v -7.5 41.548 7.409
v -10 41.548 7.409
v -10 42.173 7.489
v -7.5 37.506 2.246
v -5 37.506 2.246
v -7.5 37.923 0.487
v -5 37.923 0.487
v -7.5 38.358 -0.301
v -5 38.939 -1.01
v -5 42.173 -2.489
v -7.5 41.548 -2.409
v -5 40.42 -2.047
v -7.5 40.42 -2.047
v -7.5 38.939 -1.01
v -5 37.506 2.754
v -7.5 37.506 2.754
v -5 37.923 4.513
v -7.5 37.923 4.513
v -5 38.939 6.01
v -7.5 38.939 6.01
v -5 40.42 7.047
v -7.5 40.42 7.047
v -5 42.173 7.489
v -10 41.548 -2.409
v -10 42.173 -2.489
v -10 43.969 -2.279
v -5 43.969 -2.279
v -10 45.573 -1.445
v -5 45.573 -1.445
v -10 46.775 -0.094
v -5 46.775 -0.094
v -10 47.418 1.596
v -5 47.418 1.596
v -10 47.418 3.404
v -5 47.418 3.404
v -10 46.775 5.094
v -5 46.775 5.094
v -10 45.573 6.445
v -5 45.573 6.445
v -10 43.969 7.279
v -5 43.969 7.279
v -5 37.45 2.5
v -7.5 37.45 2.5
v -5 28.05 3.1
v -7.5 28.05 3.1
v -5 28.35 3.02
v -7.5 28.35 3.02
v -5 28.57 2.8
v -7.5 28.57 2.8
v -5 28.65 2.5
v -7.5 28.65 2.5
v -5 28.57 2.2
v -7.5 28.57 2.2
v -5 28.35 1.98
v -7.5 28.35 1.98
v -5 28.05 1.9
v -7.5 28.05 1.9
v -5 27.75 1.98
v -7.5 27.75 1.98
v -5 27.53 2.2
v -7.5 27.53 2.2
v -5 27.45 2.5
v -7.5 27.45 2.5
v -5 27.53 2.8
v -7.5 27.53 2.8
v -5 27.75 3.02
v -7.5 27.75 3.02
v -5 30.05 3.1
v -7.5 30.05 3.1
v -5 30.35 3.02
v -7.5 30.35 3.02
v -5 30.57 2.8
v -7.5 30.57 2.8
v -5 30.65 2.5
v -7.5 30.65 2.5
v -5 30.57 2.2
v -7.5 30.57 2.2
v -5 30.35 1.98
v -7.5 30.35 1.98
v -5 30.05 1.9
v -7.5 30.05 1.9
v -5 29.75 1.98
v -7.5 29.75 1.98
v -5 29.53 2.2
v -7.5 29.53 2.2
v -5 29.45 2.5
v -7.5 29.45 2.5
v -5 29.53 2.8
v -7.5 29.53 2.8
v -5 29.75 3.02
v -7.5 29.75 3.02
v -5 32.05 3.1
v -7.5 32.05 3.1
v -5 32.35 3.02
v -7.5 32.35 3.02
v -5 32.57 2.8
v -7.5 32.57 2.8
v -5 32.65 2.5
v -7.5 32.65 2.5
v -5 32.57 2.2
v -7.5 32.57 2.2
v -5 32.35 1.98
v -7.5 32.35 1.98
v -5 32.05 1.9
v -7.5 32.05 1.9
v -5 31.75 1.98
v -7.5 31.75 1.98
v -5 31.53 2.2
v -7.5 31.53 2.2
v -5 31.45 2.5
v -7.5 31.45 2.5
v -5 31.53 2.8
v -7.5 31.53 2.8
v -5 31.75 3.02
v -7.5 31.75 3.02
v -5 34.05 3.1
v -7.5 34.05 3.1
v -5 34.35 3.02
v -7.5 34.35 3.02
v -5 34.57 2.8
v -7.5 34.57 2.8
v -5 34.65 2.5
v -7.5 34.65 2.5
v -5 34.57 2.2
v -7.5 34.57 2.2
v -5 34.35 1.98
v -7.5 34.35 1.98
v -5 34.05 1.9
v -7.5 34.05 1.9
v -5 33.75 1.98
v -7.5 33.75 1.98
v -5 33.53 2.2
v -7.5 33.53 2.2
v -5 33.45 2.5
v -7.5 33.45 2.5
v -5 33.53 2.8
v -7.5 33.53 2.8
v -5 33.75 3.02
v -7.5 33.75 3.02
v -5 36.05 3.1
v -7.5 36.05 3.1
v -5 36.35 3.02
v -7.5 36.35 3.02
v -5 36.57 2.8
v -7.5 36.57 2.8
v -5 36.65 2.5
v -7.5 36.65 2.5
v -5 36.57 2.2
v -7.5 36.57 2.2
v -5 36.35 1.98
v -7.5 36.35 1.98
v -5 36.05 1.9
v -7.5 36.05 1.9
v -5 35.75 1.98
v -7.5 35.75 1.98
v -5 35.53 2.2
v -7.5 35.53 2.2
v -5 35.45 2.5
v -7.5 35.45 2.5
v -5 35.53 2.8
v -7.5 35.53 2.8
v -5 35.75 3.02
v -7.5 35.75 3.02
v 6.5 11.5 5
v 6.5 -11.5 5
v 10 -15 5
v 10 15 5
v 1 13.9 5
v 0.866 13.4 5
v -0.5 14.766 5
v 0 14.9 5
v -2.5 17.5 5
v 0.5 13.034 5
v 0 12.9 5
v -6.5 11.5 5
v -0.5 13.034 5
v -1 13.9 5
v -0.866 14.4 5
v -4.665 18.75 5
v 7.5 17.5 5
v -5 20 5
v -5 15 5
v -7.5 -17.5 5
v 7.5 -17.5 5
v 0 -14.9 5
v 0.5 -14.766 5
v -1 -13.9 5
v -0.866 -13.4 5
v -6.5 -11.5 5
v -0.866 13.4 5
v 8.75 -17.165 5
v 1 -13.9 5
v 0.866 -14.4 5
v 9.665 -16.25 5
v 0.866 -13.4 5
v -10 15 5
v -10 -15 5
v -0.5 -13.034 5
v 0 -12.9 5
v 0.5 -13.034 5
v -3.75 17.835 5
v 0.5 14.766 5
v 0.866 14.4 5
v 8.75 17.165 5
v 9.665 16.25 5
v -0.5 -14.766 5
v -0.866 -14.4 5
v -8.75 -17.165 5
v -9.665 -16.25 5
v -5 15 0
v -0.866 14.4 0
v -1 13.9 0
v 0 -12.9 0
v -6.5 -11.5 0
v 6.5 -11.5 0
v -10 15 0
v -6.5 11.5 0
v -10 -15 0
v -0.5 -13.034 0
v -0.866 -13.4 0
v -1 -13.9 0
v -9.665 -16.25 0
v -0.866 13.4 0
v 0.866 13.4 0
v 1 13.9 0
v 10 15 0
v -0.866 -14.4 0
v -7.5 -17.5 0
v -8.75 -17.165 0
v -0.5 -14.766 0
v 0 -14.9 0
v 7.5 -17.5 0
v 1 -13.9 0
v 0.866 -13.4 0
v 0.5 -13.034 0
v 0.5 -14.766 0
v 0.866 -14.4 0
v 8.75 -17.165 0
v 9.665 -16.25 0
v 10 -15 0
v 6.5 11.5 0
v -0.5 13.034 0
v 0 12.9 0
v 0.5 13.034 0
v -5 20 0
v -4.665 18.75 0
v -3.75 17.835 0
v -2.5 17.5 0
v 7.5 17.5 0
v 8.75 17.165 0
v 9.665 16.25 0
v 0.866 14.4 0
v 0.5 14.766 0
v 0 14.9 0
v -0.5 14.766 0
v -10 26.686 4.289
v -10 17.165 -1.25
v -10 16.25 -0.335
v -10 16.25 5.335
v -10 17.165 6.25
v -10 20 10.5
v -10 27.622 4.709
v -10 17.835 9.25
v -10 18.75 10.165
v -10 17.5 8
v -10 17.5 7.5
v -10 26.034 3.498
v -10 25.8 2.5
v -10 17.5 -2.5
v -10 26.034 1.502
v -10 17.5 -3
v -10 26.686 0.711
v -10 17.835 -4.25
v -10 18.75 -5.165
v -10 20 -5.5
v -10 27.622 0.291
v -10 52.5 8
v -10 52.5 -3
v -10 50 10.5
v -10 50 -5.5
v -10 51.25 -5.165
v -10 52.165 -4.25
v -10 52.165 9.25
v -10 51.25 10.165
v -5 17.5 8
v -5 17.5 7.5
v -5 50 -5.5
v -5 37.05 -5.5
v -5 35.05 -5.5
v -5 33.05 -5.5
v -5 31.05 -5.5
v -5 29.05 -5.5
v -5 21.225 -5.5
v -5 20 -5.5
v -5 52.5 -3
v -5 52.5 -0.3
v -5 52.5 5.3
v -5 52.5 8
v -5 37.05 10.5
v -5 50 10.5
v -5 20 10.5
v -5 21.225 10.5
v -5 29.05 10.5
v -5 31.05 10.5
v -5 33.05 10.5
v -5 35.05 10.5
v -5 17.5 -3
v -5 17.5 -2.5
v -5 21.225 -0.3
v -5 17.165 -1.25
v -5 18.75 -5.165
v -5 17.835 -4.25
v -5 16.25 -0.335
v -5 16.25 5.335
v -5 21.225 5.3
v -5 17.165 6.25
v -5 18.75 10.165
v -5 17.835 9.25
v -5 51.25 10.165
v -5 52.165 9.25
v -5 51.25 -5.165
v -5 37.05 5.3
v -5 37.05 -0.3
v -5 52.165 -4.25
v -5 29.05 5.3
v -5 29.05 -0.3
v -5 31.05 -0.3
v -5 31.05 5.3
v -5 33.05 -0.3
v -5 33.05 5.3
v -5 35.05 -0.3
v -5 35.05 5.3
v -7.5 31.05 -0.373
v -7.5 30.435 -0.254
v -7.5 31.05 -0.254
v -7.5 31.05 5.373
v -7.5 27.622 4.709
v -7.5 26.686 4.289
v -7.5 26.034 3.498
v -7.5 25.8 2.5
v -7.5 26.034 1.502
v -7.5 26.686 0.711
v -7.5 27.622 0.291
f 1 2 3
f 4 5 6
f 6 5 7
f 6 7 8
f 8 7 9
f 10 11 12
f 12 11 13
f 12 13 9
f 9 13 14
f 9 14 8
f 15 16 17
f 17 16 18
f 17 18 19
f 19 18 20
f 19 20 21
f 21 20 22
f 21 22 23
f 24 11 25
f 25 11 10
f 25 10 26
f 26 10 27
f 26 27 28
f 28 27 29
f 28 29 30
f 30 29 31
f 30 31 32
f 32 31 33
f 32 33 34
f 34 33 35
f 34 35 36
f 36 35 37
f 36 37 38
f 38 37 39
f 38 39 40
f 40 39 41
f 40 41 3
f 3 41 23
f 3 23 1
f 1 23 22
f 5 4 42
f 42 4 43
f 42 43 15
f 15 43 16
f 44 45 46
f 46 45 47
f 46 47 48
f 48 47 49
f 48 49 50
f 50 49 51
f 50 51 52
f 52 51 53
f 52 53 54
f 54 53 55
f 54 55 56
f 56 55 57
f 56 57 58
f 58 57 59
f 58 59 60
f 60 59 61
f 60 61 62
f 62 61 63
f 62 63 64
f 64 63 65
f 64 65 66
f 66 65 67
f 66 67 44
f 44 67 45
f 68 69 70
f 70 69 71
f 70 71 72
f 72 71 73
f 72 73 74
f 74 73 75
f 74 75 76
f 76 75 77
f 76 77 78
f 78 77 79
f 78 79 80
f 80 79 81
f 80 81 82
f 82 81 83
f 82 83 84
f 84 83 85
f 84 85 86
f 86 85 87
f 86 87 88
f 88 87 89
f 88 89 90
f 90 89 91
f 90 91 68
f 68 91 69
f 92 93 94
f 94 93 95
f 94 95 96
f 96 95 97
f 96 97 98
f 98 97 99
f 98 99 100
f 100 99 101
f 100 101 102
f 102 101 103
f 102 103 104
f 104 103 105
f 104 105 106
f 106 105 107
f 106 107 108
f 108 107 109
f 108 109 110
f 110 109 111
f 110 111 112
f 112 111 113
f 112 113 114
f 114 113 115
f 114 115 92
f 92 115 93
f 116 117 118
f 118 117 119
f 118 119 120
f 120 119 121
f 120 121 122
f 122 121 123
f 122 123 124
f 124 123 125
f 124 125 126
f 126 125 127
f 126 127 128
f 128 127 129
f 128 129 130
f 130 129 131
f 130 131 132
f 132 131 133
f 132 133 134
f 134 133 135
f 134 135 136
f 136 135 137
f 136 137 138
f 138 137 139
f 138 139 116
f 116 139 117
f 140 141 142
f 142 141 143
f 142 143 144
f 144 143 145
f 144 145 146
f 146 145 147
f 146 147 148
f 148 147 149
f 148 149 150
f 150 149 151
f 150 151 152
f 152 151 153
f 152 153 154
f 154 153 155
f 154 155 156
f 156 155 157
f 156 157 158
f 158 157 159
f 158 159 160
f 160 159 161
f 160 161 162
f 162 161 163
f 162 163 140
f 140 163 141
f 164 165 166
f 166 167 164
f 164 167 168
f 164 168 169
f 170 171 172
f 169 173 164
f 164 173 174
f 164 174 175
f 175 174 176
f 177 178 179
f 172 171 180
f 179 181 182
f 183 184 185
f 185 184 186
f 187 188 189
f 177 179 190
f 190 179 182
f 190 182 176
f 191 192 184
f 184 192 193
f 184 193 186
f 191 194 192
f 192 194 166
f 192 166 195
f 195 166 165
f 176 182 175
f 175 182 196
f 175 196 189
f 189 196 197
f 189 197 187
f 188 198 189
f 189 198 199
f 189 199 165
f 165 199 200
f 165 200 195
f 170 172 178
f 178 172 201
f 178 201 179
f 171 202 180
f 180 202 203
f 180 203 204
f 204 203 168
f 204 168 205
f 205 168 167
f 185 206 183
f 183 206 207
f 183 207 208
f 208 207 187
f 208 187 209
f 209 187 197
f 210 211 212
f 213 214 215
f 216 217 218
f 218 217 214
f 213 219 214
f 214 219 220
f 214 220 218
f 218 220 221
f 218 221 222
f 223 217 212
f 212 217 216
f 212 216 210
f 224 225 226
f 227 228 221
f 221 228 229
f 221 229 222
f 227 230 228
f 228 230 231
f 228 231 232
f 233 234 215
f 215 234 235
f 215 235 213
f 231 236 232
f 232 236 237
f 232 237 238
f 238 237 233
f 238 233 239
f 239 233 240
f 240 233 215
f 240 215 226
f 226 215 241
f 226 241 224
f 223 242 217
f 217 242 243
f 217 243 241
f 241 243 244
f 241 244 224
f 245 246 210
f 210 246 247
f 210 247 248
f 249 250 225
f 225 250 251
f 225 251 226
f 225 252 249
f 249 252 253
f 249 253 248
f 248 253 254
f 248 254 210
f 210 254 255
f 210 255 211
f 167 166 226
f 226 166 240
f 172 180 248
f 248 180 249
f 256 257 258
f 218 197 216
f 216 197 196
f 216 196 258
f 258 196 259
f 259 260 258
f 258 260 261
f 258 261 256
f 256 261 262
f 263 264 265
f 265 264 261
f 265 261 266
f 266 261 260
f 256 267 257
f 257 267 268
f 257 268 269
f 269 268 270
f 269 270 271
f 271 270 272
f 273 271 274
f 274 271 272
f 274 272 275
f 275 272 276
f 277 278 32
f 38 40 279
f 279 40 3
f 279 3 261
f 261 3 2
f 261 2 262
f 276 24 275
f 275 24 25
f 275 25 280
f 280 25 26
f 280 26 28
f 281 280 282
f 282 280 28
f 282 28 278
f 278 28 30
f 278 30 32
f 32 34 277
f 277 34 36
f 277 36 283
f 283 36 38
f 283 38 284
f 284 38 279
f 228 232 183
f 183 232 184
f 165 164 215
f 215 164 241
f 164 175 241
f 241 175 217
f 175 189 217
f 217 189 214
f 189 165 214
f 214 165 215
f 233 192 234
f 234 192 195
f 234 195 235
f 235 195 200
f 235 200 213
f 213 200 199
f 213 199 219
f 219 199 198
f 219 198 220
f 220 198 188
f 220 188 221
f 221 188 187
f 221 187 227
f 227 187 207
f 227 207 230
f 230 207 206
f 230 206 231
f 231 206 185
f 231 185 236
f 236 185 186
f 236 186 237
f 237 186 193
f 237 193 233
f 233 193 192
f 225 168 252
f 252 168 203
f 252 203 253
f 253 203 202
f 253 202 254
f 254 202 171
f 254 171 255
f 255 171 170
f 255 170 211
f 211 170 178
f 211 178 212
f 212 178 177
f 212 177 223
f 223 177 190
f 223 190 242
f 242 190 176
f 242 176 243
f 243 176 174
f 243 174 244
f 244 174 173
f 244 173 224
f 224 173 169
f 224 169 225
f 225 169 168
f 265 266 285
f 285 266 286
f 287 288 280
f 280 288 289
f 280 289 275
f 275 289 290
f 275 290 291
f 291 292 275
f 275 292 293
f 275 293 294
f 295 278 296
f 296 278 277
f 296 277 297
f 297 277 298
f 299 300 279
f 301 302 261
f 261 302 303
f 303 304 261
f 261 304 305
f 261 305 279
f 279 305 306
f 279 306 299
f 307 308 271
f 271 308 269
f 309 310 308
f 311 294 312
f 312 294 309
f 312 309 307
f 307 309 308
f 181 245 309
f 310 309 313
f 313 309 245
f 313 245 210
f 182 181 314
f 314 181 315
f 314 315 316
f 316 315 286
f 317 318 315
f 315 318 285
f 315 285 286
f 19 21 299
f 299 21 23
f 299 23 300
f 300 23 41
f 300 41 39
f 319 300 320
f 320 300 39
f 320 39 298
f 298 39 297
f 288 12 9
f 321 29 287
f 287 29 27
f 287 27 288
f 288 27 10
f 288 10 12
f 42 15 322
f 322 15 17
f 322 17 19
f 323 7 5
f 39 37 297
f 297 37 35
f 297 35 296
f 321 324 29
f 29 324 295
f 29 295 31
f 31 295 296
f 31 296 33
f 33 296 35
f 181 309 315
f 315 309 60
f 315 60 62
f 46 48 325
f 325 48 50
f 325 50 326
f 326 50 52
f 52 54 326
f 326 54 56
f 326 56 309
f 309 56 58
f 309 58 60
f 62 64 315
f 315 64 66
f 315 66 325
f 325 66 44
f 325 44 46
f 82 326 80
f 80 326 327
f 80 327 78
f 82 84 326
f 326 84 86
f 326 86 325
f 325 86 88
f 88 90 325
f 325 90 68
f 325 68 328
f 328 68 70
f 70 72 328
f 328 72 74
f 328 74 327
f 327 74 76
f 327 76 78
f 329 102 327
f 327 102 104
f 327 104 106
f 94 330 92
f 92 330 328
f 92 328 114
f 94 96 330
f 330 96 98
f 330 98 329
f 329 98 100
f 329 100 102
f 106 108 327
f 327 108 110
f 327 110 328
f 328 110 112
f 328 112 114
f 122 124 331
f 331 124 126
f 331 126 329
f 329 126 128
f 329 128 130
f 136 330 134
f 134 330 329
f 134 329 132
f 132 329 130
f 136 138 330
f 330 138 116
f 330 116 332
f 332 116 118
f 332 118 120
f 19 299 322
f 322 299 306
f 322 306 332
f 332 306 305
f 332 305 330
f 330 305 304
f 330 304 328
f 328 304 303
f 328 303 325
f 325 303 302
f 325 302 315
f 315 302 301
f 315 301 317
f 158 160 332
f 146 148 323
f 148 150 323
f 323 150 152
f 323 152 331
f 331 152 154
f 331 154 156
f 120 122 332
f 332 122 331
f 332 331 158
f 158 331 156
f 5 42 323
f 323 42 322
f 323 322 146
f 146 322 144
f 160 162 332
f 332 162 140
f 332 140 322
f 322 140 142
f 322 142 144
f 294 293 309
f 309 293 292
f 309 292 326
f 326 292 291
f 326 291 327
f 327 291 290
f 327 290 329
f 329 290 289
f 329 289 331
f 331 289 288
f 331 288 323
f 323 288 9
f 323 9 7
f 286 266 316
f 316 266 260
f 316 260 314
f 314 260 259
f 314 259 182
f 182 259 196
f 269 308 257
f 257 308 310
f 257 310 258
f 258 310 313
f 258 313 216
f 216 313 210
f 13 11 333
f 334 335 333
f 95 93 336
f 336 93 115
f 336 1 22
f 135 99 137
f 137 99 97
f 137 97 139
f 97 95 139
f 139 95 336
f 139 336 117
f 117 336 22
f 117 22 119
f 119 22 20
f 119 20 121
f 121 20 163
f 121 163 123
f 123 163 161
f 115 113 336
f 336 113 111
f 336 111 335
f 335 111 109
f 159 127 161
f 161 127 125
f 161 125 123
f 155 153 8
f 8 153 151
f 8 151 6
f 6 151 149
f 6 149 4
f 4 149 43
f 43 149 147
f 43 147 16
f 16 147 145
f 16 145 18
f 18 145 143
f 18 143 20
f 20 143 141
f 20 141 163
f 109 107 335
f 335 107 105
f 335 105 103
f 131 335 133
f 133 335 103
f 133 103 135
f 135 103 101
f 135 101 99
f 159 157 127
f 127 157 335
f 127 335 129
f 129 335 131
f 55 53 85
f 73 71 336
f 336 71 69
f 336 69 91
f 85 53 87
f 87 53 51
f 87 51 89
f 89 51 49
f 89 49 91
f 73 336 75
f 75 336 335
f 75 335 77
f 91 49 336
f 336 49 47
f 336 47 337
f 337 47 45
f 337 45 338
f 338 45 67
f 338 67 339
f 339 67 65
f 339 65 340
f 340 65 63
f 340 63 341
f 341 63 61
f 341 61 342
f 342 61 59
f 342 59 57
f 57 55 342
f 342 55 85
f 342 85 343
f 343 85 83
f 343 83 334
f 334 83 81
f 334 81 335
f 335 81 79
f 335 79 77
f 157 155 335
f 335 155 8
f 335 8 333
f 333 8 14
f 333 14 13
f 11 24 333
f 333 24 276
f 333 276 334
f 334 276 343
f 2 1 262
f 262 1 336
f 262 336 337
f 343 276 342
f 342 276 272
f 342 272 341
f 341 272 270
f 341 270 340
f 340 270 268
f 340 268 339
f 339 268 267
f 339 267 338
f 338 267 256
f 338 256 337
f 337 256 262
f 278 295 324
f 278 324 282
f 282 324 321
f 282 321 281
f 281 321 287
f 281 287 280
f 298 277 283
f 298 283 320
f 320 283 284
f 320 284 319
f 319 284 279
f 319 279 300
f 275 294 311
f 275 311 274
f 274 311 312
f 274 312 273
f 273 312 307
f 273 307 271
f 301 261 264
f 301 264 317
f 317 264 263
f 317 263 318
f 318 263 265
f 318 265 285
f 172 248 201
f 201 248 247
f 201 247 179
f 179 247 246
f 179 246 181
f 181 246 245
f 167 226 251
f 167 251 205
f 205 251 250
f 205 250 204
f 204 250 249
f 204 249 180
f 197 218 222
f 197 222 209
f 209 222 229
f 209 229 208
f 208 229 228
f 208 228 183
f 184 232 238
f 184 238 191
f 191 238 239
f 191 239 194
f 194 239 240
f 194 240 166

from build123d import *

# Parameters (mm, degrees)
SKETCH1_W           = 20
SKETCH1_H           = 35
SKETCH1_W_2         = 13
SKETCH1_H_2         = 23
BOSS_EXTRUDE1_DEPTH = 5
SKETCH2_R           = 1
CUT_EXTRUDE1_DEPTH  = 5
BOSS_EXTRUDE2_DEPTH = 5
FILLET1_R           = 2.5
SKETCH5_R           = 5
CUT_EXTRUDE2_DEPTH  = 5
SKETCH6_R           = 0.6
CUT_EXTRUDE3_DEPTH  = 5
CUT_EXTRUDE4_START  = -2.5
SKETCH8_R           = 0.6
SKETCH8_R_2         = 2.25
CUT_EXTRUDE4_DEPTH  = 2.5
FILLET2_R           = 2.5


with BuildPart() as part:
    # Sketch1 → Boss-Extrude1 (new body)
    with BuildSketch(Plane.XY):
        Rectangle(SKETCH1_W, SKETCH1_H)
        Rectangle(SKETCH1_W_2, SKETCH1_H_2, mode=Mode.SUBTRACT)
    extrude(amount=BOSS_EXTRUDE1_DEPTH)

    # Sketch2 → Cut-Extrude1 (cut)
    with BuildSketch(Plane.XY.offset(5)):
        with Locations((0, 13.9)):
            Circle(SKETCH2_R)
        with Locations(Location((0, -13.9, 0), (0, 0, 180))):
            Circle(SKETCH2_R)
    extrude(amount=-CUT_EXTRUDE1_DEPTH, mode=Mode.SUBTRACT)

    # Sketch3 → Boss-Extrude2 (add)
    with BuildSketch(Plane.ZY.offset(10)):
        Polygon((-5.5, 52.5), (-5.5, 17.5), (0, 17.5), (2.5, 17.5), (2.5, 52.5), align=None)
        Polygon((2.5, 52.5), (2.5, 17.5), (5, 17.5), (10.5, 17.5), (10.5, 52.5), align=None)
    extrude(amount=-BOSS_EXTRUDE2_DEPTH)

    # Fillet1
    fillet1_edges = [part.edges().sort_by_distance(p)[0] for p in [
        (-7.5, 17.5, 0),
        (-7.5, 17.5, 5),
    ]]
    fillet(fillet1_edges, radius=FILLET1_R)

    # Sketch5 → Cut-Extrude2 (cut)
    with BuildSketch(Plane(origin=(-5, 0, 0), x_dir=(0, 0, -1), z_dir=(1, 0, 0))):
        with Locations((-2.5, 42.5)):
            Circle(SKETCH5_R)
    extrude(amount=-CUT_EXTRUDE2_DEPTH, mode=Mode.SUBTRACT)

    # Sketch6 → Cut-Extrude3 (cut)
    with BuildSketch(Plane.ZY.offset(10)):
        with Locations((2.5, 38.05)):
            Circle(SKETCH6_R)
        with Locations((2.5, 36.05)):
            Circle(SKETCH6_R)
        with Locations((2.5, 34.05)):
            Circle(SKETCH6_R)
        with Locations((2.5, 32.05)):
            Circle(SKETCH6_R)
        with Locations((2.5, 30.05)):
            Circle(SKETCH6_R)
        with Locations((2.5, 28.05)):
            Circle(SKETCH6_R)
    extrude(amount=-CUT_EXTRUDE3_DEPTH, mode=Mode.SUBTRACT)

    # Sketch8 → Cut-Extrude4 (cut)
    # profile 1 of 4: a face of its own
    with BuildSketch(Plane.ZY.offset(10).offset(CUT_EXTRUDE4_START)):
        with BuildLine():
            ThreePointArc((2.245903559, 37.506460674), (-0.77838564, 38.72479304), (-2.408618858, 41.548442907))
            Line((-2.408618858, 41.548442907), (0.291121514, 27.621799308))
            ThreePointArc((0.291121514, 27.621799308), (0.594562485, 29.246581747), (1.926278936, 30.225625))
            ThreePointArc((1.926278936, 30.225625), (2.5, 30.65), (3.073721064, 30.225625))
            ThreePointArc((3.073721064, 30.225625), (4.282326064, 29.423249359), (4.75, 28.05))
            ThreePointArc((4.75, 28.05), (4.739696028, 27.834914661), (4.708878486, 27.621799308))
            Line((4.708878486, 27.621799308), (7.408618858, 41.548442907))
            ThreePointArc((7.408618858, 41.548442907), (5.77838564, 38.72479304), (2.754096441, 37.506460674))
            ThreePointArc((2.754096441, 37.506460674), (2.5, 37.45), (2.245903559, 37.506460674))
        make_face()
        with Locations((2.5, 32.05)):
            Circle(SKETCH8_R, mode=Mode.SUBTRACT)
        with Locations((2.5, 34.05)):
            Circle(SKETCH8_R, mode=Mode.SUBTRACT)
        with Locations((2.5, 36.05)):
            Circle(SKETCH8_R, mode=Mode.SUBTRACT)
    # profile 2 of 4: a face of its own
    with BuildSketch(Plane.ZY.offset(10).offset(CUT_EXTRUDE4_START)):
        with Locations((2.5, 28.05)):
            Circle(SKETCH8_R_2)
        with Locations((2.5, 28.05)):
            Circle(SKETCH8_R, mode=Mode.SUBTRACT)
    # profile 3 of 4: a face of its own
    with BuildSketch(Plane.ZY.offset(10).offset(CUT_EXTRUDE4_START)):
        with Locations((2.5, 30.05)):
            Circle(SKETCH8_R)
    # profile 4 of 4: a face of its own
    with BuildSketch(Plane.ZY.offset(10).offset(CUT_EXTRUDE4_START)):
        with BuildLine():
            ThreePointArc((7.5, 42.5), (2.022032581, 47.477102284), (-2.408618858, 41.548442907))
            ThreePointArc((-2.408618858, 41.548442907), (-0.77838564, 38.72479304), (2.245903559, 37.506460674))
            ThreePointArc((2.245903559, 37.506460674), (2.5, 37.5), (2.754096441, 37.506460674))
            ThreePointArc((2.754096441, 37.506460674), (5.77838564, 38.72479304), (7.408618858, 41.548442907))
            ThreePointArc((7.408618858, 41.548442907), (7.477102284, 42.022032581), (7.5, 42.5))
        make_face()
    extrude(amount=CUT_EXTRUDE4_DEPTH, mode=Mode.SUBTRACT)

    # Fillet2
    fillet2_edges = [part.edges().sort_by_distance(p)[0] for p in [
        (-10, -17.5, 2.5),
        (-5, 17.5, 2.5),
        (10, 17.5, 2.5),
        (10, -17.5, 2.5),
        (-7.5, 17.5, 10.5),
        (-7.5, 52.5, 10.5),
        (-7.5, 52.5, -5.5),
        (-7.5, 17.5, -5.5),
    ]]
    fillet(fillet2_edges, radius=FILLET2_R)


solid = part.part
